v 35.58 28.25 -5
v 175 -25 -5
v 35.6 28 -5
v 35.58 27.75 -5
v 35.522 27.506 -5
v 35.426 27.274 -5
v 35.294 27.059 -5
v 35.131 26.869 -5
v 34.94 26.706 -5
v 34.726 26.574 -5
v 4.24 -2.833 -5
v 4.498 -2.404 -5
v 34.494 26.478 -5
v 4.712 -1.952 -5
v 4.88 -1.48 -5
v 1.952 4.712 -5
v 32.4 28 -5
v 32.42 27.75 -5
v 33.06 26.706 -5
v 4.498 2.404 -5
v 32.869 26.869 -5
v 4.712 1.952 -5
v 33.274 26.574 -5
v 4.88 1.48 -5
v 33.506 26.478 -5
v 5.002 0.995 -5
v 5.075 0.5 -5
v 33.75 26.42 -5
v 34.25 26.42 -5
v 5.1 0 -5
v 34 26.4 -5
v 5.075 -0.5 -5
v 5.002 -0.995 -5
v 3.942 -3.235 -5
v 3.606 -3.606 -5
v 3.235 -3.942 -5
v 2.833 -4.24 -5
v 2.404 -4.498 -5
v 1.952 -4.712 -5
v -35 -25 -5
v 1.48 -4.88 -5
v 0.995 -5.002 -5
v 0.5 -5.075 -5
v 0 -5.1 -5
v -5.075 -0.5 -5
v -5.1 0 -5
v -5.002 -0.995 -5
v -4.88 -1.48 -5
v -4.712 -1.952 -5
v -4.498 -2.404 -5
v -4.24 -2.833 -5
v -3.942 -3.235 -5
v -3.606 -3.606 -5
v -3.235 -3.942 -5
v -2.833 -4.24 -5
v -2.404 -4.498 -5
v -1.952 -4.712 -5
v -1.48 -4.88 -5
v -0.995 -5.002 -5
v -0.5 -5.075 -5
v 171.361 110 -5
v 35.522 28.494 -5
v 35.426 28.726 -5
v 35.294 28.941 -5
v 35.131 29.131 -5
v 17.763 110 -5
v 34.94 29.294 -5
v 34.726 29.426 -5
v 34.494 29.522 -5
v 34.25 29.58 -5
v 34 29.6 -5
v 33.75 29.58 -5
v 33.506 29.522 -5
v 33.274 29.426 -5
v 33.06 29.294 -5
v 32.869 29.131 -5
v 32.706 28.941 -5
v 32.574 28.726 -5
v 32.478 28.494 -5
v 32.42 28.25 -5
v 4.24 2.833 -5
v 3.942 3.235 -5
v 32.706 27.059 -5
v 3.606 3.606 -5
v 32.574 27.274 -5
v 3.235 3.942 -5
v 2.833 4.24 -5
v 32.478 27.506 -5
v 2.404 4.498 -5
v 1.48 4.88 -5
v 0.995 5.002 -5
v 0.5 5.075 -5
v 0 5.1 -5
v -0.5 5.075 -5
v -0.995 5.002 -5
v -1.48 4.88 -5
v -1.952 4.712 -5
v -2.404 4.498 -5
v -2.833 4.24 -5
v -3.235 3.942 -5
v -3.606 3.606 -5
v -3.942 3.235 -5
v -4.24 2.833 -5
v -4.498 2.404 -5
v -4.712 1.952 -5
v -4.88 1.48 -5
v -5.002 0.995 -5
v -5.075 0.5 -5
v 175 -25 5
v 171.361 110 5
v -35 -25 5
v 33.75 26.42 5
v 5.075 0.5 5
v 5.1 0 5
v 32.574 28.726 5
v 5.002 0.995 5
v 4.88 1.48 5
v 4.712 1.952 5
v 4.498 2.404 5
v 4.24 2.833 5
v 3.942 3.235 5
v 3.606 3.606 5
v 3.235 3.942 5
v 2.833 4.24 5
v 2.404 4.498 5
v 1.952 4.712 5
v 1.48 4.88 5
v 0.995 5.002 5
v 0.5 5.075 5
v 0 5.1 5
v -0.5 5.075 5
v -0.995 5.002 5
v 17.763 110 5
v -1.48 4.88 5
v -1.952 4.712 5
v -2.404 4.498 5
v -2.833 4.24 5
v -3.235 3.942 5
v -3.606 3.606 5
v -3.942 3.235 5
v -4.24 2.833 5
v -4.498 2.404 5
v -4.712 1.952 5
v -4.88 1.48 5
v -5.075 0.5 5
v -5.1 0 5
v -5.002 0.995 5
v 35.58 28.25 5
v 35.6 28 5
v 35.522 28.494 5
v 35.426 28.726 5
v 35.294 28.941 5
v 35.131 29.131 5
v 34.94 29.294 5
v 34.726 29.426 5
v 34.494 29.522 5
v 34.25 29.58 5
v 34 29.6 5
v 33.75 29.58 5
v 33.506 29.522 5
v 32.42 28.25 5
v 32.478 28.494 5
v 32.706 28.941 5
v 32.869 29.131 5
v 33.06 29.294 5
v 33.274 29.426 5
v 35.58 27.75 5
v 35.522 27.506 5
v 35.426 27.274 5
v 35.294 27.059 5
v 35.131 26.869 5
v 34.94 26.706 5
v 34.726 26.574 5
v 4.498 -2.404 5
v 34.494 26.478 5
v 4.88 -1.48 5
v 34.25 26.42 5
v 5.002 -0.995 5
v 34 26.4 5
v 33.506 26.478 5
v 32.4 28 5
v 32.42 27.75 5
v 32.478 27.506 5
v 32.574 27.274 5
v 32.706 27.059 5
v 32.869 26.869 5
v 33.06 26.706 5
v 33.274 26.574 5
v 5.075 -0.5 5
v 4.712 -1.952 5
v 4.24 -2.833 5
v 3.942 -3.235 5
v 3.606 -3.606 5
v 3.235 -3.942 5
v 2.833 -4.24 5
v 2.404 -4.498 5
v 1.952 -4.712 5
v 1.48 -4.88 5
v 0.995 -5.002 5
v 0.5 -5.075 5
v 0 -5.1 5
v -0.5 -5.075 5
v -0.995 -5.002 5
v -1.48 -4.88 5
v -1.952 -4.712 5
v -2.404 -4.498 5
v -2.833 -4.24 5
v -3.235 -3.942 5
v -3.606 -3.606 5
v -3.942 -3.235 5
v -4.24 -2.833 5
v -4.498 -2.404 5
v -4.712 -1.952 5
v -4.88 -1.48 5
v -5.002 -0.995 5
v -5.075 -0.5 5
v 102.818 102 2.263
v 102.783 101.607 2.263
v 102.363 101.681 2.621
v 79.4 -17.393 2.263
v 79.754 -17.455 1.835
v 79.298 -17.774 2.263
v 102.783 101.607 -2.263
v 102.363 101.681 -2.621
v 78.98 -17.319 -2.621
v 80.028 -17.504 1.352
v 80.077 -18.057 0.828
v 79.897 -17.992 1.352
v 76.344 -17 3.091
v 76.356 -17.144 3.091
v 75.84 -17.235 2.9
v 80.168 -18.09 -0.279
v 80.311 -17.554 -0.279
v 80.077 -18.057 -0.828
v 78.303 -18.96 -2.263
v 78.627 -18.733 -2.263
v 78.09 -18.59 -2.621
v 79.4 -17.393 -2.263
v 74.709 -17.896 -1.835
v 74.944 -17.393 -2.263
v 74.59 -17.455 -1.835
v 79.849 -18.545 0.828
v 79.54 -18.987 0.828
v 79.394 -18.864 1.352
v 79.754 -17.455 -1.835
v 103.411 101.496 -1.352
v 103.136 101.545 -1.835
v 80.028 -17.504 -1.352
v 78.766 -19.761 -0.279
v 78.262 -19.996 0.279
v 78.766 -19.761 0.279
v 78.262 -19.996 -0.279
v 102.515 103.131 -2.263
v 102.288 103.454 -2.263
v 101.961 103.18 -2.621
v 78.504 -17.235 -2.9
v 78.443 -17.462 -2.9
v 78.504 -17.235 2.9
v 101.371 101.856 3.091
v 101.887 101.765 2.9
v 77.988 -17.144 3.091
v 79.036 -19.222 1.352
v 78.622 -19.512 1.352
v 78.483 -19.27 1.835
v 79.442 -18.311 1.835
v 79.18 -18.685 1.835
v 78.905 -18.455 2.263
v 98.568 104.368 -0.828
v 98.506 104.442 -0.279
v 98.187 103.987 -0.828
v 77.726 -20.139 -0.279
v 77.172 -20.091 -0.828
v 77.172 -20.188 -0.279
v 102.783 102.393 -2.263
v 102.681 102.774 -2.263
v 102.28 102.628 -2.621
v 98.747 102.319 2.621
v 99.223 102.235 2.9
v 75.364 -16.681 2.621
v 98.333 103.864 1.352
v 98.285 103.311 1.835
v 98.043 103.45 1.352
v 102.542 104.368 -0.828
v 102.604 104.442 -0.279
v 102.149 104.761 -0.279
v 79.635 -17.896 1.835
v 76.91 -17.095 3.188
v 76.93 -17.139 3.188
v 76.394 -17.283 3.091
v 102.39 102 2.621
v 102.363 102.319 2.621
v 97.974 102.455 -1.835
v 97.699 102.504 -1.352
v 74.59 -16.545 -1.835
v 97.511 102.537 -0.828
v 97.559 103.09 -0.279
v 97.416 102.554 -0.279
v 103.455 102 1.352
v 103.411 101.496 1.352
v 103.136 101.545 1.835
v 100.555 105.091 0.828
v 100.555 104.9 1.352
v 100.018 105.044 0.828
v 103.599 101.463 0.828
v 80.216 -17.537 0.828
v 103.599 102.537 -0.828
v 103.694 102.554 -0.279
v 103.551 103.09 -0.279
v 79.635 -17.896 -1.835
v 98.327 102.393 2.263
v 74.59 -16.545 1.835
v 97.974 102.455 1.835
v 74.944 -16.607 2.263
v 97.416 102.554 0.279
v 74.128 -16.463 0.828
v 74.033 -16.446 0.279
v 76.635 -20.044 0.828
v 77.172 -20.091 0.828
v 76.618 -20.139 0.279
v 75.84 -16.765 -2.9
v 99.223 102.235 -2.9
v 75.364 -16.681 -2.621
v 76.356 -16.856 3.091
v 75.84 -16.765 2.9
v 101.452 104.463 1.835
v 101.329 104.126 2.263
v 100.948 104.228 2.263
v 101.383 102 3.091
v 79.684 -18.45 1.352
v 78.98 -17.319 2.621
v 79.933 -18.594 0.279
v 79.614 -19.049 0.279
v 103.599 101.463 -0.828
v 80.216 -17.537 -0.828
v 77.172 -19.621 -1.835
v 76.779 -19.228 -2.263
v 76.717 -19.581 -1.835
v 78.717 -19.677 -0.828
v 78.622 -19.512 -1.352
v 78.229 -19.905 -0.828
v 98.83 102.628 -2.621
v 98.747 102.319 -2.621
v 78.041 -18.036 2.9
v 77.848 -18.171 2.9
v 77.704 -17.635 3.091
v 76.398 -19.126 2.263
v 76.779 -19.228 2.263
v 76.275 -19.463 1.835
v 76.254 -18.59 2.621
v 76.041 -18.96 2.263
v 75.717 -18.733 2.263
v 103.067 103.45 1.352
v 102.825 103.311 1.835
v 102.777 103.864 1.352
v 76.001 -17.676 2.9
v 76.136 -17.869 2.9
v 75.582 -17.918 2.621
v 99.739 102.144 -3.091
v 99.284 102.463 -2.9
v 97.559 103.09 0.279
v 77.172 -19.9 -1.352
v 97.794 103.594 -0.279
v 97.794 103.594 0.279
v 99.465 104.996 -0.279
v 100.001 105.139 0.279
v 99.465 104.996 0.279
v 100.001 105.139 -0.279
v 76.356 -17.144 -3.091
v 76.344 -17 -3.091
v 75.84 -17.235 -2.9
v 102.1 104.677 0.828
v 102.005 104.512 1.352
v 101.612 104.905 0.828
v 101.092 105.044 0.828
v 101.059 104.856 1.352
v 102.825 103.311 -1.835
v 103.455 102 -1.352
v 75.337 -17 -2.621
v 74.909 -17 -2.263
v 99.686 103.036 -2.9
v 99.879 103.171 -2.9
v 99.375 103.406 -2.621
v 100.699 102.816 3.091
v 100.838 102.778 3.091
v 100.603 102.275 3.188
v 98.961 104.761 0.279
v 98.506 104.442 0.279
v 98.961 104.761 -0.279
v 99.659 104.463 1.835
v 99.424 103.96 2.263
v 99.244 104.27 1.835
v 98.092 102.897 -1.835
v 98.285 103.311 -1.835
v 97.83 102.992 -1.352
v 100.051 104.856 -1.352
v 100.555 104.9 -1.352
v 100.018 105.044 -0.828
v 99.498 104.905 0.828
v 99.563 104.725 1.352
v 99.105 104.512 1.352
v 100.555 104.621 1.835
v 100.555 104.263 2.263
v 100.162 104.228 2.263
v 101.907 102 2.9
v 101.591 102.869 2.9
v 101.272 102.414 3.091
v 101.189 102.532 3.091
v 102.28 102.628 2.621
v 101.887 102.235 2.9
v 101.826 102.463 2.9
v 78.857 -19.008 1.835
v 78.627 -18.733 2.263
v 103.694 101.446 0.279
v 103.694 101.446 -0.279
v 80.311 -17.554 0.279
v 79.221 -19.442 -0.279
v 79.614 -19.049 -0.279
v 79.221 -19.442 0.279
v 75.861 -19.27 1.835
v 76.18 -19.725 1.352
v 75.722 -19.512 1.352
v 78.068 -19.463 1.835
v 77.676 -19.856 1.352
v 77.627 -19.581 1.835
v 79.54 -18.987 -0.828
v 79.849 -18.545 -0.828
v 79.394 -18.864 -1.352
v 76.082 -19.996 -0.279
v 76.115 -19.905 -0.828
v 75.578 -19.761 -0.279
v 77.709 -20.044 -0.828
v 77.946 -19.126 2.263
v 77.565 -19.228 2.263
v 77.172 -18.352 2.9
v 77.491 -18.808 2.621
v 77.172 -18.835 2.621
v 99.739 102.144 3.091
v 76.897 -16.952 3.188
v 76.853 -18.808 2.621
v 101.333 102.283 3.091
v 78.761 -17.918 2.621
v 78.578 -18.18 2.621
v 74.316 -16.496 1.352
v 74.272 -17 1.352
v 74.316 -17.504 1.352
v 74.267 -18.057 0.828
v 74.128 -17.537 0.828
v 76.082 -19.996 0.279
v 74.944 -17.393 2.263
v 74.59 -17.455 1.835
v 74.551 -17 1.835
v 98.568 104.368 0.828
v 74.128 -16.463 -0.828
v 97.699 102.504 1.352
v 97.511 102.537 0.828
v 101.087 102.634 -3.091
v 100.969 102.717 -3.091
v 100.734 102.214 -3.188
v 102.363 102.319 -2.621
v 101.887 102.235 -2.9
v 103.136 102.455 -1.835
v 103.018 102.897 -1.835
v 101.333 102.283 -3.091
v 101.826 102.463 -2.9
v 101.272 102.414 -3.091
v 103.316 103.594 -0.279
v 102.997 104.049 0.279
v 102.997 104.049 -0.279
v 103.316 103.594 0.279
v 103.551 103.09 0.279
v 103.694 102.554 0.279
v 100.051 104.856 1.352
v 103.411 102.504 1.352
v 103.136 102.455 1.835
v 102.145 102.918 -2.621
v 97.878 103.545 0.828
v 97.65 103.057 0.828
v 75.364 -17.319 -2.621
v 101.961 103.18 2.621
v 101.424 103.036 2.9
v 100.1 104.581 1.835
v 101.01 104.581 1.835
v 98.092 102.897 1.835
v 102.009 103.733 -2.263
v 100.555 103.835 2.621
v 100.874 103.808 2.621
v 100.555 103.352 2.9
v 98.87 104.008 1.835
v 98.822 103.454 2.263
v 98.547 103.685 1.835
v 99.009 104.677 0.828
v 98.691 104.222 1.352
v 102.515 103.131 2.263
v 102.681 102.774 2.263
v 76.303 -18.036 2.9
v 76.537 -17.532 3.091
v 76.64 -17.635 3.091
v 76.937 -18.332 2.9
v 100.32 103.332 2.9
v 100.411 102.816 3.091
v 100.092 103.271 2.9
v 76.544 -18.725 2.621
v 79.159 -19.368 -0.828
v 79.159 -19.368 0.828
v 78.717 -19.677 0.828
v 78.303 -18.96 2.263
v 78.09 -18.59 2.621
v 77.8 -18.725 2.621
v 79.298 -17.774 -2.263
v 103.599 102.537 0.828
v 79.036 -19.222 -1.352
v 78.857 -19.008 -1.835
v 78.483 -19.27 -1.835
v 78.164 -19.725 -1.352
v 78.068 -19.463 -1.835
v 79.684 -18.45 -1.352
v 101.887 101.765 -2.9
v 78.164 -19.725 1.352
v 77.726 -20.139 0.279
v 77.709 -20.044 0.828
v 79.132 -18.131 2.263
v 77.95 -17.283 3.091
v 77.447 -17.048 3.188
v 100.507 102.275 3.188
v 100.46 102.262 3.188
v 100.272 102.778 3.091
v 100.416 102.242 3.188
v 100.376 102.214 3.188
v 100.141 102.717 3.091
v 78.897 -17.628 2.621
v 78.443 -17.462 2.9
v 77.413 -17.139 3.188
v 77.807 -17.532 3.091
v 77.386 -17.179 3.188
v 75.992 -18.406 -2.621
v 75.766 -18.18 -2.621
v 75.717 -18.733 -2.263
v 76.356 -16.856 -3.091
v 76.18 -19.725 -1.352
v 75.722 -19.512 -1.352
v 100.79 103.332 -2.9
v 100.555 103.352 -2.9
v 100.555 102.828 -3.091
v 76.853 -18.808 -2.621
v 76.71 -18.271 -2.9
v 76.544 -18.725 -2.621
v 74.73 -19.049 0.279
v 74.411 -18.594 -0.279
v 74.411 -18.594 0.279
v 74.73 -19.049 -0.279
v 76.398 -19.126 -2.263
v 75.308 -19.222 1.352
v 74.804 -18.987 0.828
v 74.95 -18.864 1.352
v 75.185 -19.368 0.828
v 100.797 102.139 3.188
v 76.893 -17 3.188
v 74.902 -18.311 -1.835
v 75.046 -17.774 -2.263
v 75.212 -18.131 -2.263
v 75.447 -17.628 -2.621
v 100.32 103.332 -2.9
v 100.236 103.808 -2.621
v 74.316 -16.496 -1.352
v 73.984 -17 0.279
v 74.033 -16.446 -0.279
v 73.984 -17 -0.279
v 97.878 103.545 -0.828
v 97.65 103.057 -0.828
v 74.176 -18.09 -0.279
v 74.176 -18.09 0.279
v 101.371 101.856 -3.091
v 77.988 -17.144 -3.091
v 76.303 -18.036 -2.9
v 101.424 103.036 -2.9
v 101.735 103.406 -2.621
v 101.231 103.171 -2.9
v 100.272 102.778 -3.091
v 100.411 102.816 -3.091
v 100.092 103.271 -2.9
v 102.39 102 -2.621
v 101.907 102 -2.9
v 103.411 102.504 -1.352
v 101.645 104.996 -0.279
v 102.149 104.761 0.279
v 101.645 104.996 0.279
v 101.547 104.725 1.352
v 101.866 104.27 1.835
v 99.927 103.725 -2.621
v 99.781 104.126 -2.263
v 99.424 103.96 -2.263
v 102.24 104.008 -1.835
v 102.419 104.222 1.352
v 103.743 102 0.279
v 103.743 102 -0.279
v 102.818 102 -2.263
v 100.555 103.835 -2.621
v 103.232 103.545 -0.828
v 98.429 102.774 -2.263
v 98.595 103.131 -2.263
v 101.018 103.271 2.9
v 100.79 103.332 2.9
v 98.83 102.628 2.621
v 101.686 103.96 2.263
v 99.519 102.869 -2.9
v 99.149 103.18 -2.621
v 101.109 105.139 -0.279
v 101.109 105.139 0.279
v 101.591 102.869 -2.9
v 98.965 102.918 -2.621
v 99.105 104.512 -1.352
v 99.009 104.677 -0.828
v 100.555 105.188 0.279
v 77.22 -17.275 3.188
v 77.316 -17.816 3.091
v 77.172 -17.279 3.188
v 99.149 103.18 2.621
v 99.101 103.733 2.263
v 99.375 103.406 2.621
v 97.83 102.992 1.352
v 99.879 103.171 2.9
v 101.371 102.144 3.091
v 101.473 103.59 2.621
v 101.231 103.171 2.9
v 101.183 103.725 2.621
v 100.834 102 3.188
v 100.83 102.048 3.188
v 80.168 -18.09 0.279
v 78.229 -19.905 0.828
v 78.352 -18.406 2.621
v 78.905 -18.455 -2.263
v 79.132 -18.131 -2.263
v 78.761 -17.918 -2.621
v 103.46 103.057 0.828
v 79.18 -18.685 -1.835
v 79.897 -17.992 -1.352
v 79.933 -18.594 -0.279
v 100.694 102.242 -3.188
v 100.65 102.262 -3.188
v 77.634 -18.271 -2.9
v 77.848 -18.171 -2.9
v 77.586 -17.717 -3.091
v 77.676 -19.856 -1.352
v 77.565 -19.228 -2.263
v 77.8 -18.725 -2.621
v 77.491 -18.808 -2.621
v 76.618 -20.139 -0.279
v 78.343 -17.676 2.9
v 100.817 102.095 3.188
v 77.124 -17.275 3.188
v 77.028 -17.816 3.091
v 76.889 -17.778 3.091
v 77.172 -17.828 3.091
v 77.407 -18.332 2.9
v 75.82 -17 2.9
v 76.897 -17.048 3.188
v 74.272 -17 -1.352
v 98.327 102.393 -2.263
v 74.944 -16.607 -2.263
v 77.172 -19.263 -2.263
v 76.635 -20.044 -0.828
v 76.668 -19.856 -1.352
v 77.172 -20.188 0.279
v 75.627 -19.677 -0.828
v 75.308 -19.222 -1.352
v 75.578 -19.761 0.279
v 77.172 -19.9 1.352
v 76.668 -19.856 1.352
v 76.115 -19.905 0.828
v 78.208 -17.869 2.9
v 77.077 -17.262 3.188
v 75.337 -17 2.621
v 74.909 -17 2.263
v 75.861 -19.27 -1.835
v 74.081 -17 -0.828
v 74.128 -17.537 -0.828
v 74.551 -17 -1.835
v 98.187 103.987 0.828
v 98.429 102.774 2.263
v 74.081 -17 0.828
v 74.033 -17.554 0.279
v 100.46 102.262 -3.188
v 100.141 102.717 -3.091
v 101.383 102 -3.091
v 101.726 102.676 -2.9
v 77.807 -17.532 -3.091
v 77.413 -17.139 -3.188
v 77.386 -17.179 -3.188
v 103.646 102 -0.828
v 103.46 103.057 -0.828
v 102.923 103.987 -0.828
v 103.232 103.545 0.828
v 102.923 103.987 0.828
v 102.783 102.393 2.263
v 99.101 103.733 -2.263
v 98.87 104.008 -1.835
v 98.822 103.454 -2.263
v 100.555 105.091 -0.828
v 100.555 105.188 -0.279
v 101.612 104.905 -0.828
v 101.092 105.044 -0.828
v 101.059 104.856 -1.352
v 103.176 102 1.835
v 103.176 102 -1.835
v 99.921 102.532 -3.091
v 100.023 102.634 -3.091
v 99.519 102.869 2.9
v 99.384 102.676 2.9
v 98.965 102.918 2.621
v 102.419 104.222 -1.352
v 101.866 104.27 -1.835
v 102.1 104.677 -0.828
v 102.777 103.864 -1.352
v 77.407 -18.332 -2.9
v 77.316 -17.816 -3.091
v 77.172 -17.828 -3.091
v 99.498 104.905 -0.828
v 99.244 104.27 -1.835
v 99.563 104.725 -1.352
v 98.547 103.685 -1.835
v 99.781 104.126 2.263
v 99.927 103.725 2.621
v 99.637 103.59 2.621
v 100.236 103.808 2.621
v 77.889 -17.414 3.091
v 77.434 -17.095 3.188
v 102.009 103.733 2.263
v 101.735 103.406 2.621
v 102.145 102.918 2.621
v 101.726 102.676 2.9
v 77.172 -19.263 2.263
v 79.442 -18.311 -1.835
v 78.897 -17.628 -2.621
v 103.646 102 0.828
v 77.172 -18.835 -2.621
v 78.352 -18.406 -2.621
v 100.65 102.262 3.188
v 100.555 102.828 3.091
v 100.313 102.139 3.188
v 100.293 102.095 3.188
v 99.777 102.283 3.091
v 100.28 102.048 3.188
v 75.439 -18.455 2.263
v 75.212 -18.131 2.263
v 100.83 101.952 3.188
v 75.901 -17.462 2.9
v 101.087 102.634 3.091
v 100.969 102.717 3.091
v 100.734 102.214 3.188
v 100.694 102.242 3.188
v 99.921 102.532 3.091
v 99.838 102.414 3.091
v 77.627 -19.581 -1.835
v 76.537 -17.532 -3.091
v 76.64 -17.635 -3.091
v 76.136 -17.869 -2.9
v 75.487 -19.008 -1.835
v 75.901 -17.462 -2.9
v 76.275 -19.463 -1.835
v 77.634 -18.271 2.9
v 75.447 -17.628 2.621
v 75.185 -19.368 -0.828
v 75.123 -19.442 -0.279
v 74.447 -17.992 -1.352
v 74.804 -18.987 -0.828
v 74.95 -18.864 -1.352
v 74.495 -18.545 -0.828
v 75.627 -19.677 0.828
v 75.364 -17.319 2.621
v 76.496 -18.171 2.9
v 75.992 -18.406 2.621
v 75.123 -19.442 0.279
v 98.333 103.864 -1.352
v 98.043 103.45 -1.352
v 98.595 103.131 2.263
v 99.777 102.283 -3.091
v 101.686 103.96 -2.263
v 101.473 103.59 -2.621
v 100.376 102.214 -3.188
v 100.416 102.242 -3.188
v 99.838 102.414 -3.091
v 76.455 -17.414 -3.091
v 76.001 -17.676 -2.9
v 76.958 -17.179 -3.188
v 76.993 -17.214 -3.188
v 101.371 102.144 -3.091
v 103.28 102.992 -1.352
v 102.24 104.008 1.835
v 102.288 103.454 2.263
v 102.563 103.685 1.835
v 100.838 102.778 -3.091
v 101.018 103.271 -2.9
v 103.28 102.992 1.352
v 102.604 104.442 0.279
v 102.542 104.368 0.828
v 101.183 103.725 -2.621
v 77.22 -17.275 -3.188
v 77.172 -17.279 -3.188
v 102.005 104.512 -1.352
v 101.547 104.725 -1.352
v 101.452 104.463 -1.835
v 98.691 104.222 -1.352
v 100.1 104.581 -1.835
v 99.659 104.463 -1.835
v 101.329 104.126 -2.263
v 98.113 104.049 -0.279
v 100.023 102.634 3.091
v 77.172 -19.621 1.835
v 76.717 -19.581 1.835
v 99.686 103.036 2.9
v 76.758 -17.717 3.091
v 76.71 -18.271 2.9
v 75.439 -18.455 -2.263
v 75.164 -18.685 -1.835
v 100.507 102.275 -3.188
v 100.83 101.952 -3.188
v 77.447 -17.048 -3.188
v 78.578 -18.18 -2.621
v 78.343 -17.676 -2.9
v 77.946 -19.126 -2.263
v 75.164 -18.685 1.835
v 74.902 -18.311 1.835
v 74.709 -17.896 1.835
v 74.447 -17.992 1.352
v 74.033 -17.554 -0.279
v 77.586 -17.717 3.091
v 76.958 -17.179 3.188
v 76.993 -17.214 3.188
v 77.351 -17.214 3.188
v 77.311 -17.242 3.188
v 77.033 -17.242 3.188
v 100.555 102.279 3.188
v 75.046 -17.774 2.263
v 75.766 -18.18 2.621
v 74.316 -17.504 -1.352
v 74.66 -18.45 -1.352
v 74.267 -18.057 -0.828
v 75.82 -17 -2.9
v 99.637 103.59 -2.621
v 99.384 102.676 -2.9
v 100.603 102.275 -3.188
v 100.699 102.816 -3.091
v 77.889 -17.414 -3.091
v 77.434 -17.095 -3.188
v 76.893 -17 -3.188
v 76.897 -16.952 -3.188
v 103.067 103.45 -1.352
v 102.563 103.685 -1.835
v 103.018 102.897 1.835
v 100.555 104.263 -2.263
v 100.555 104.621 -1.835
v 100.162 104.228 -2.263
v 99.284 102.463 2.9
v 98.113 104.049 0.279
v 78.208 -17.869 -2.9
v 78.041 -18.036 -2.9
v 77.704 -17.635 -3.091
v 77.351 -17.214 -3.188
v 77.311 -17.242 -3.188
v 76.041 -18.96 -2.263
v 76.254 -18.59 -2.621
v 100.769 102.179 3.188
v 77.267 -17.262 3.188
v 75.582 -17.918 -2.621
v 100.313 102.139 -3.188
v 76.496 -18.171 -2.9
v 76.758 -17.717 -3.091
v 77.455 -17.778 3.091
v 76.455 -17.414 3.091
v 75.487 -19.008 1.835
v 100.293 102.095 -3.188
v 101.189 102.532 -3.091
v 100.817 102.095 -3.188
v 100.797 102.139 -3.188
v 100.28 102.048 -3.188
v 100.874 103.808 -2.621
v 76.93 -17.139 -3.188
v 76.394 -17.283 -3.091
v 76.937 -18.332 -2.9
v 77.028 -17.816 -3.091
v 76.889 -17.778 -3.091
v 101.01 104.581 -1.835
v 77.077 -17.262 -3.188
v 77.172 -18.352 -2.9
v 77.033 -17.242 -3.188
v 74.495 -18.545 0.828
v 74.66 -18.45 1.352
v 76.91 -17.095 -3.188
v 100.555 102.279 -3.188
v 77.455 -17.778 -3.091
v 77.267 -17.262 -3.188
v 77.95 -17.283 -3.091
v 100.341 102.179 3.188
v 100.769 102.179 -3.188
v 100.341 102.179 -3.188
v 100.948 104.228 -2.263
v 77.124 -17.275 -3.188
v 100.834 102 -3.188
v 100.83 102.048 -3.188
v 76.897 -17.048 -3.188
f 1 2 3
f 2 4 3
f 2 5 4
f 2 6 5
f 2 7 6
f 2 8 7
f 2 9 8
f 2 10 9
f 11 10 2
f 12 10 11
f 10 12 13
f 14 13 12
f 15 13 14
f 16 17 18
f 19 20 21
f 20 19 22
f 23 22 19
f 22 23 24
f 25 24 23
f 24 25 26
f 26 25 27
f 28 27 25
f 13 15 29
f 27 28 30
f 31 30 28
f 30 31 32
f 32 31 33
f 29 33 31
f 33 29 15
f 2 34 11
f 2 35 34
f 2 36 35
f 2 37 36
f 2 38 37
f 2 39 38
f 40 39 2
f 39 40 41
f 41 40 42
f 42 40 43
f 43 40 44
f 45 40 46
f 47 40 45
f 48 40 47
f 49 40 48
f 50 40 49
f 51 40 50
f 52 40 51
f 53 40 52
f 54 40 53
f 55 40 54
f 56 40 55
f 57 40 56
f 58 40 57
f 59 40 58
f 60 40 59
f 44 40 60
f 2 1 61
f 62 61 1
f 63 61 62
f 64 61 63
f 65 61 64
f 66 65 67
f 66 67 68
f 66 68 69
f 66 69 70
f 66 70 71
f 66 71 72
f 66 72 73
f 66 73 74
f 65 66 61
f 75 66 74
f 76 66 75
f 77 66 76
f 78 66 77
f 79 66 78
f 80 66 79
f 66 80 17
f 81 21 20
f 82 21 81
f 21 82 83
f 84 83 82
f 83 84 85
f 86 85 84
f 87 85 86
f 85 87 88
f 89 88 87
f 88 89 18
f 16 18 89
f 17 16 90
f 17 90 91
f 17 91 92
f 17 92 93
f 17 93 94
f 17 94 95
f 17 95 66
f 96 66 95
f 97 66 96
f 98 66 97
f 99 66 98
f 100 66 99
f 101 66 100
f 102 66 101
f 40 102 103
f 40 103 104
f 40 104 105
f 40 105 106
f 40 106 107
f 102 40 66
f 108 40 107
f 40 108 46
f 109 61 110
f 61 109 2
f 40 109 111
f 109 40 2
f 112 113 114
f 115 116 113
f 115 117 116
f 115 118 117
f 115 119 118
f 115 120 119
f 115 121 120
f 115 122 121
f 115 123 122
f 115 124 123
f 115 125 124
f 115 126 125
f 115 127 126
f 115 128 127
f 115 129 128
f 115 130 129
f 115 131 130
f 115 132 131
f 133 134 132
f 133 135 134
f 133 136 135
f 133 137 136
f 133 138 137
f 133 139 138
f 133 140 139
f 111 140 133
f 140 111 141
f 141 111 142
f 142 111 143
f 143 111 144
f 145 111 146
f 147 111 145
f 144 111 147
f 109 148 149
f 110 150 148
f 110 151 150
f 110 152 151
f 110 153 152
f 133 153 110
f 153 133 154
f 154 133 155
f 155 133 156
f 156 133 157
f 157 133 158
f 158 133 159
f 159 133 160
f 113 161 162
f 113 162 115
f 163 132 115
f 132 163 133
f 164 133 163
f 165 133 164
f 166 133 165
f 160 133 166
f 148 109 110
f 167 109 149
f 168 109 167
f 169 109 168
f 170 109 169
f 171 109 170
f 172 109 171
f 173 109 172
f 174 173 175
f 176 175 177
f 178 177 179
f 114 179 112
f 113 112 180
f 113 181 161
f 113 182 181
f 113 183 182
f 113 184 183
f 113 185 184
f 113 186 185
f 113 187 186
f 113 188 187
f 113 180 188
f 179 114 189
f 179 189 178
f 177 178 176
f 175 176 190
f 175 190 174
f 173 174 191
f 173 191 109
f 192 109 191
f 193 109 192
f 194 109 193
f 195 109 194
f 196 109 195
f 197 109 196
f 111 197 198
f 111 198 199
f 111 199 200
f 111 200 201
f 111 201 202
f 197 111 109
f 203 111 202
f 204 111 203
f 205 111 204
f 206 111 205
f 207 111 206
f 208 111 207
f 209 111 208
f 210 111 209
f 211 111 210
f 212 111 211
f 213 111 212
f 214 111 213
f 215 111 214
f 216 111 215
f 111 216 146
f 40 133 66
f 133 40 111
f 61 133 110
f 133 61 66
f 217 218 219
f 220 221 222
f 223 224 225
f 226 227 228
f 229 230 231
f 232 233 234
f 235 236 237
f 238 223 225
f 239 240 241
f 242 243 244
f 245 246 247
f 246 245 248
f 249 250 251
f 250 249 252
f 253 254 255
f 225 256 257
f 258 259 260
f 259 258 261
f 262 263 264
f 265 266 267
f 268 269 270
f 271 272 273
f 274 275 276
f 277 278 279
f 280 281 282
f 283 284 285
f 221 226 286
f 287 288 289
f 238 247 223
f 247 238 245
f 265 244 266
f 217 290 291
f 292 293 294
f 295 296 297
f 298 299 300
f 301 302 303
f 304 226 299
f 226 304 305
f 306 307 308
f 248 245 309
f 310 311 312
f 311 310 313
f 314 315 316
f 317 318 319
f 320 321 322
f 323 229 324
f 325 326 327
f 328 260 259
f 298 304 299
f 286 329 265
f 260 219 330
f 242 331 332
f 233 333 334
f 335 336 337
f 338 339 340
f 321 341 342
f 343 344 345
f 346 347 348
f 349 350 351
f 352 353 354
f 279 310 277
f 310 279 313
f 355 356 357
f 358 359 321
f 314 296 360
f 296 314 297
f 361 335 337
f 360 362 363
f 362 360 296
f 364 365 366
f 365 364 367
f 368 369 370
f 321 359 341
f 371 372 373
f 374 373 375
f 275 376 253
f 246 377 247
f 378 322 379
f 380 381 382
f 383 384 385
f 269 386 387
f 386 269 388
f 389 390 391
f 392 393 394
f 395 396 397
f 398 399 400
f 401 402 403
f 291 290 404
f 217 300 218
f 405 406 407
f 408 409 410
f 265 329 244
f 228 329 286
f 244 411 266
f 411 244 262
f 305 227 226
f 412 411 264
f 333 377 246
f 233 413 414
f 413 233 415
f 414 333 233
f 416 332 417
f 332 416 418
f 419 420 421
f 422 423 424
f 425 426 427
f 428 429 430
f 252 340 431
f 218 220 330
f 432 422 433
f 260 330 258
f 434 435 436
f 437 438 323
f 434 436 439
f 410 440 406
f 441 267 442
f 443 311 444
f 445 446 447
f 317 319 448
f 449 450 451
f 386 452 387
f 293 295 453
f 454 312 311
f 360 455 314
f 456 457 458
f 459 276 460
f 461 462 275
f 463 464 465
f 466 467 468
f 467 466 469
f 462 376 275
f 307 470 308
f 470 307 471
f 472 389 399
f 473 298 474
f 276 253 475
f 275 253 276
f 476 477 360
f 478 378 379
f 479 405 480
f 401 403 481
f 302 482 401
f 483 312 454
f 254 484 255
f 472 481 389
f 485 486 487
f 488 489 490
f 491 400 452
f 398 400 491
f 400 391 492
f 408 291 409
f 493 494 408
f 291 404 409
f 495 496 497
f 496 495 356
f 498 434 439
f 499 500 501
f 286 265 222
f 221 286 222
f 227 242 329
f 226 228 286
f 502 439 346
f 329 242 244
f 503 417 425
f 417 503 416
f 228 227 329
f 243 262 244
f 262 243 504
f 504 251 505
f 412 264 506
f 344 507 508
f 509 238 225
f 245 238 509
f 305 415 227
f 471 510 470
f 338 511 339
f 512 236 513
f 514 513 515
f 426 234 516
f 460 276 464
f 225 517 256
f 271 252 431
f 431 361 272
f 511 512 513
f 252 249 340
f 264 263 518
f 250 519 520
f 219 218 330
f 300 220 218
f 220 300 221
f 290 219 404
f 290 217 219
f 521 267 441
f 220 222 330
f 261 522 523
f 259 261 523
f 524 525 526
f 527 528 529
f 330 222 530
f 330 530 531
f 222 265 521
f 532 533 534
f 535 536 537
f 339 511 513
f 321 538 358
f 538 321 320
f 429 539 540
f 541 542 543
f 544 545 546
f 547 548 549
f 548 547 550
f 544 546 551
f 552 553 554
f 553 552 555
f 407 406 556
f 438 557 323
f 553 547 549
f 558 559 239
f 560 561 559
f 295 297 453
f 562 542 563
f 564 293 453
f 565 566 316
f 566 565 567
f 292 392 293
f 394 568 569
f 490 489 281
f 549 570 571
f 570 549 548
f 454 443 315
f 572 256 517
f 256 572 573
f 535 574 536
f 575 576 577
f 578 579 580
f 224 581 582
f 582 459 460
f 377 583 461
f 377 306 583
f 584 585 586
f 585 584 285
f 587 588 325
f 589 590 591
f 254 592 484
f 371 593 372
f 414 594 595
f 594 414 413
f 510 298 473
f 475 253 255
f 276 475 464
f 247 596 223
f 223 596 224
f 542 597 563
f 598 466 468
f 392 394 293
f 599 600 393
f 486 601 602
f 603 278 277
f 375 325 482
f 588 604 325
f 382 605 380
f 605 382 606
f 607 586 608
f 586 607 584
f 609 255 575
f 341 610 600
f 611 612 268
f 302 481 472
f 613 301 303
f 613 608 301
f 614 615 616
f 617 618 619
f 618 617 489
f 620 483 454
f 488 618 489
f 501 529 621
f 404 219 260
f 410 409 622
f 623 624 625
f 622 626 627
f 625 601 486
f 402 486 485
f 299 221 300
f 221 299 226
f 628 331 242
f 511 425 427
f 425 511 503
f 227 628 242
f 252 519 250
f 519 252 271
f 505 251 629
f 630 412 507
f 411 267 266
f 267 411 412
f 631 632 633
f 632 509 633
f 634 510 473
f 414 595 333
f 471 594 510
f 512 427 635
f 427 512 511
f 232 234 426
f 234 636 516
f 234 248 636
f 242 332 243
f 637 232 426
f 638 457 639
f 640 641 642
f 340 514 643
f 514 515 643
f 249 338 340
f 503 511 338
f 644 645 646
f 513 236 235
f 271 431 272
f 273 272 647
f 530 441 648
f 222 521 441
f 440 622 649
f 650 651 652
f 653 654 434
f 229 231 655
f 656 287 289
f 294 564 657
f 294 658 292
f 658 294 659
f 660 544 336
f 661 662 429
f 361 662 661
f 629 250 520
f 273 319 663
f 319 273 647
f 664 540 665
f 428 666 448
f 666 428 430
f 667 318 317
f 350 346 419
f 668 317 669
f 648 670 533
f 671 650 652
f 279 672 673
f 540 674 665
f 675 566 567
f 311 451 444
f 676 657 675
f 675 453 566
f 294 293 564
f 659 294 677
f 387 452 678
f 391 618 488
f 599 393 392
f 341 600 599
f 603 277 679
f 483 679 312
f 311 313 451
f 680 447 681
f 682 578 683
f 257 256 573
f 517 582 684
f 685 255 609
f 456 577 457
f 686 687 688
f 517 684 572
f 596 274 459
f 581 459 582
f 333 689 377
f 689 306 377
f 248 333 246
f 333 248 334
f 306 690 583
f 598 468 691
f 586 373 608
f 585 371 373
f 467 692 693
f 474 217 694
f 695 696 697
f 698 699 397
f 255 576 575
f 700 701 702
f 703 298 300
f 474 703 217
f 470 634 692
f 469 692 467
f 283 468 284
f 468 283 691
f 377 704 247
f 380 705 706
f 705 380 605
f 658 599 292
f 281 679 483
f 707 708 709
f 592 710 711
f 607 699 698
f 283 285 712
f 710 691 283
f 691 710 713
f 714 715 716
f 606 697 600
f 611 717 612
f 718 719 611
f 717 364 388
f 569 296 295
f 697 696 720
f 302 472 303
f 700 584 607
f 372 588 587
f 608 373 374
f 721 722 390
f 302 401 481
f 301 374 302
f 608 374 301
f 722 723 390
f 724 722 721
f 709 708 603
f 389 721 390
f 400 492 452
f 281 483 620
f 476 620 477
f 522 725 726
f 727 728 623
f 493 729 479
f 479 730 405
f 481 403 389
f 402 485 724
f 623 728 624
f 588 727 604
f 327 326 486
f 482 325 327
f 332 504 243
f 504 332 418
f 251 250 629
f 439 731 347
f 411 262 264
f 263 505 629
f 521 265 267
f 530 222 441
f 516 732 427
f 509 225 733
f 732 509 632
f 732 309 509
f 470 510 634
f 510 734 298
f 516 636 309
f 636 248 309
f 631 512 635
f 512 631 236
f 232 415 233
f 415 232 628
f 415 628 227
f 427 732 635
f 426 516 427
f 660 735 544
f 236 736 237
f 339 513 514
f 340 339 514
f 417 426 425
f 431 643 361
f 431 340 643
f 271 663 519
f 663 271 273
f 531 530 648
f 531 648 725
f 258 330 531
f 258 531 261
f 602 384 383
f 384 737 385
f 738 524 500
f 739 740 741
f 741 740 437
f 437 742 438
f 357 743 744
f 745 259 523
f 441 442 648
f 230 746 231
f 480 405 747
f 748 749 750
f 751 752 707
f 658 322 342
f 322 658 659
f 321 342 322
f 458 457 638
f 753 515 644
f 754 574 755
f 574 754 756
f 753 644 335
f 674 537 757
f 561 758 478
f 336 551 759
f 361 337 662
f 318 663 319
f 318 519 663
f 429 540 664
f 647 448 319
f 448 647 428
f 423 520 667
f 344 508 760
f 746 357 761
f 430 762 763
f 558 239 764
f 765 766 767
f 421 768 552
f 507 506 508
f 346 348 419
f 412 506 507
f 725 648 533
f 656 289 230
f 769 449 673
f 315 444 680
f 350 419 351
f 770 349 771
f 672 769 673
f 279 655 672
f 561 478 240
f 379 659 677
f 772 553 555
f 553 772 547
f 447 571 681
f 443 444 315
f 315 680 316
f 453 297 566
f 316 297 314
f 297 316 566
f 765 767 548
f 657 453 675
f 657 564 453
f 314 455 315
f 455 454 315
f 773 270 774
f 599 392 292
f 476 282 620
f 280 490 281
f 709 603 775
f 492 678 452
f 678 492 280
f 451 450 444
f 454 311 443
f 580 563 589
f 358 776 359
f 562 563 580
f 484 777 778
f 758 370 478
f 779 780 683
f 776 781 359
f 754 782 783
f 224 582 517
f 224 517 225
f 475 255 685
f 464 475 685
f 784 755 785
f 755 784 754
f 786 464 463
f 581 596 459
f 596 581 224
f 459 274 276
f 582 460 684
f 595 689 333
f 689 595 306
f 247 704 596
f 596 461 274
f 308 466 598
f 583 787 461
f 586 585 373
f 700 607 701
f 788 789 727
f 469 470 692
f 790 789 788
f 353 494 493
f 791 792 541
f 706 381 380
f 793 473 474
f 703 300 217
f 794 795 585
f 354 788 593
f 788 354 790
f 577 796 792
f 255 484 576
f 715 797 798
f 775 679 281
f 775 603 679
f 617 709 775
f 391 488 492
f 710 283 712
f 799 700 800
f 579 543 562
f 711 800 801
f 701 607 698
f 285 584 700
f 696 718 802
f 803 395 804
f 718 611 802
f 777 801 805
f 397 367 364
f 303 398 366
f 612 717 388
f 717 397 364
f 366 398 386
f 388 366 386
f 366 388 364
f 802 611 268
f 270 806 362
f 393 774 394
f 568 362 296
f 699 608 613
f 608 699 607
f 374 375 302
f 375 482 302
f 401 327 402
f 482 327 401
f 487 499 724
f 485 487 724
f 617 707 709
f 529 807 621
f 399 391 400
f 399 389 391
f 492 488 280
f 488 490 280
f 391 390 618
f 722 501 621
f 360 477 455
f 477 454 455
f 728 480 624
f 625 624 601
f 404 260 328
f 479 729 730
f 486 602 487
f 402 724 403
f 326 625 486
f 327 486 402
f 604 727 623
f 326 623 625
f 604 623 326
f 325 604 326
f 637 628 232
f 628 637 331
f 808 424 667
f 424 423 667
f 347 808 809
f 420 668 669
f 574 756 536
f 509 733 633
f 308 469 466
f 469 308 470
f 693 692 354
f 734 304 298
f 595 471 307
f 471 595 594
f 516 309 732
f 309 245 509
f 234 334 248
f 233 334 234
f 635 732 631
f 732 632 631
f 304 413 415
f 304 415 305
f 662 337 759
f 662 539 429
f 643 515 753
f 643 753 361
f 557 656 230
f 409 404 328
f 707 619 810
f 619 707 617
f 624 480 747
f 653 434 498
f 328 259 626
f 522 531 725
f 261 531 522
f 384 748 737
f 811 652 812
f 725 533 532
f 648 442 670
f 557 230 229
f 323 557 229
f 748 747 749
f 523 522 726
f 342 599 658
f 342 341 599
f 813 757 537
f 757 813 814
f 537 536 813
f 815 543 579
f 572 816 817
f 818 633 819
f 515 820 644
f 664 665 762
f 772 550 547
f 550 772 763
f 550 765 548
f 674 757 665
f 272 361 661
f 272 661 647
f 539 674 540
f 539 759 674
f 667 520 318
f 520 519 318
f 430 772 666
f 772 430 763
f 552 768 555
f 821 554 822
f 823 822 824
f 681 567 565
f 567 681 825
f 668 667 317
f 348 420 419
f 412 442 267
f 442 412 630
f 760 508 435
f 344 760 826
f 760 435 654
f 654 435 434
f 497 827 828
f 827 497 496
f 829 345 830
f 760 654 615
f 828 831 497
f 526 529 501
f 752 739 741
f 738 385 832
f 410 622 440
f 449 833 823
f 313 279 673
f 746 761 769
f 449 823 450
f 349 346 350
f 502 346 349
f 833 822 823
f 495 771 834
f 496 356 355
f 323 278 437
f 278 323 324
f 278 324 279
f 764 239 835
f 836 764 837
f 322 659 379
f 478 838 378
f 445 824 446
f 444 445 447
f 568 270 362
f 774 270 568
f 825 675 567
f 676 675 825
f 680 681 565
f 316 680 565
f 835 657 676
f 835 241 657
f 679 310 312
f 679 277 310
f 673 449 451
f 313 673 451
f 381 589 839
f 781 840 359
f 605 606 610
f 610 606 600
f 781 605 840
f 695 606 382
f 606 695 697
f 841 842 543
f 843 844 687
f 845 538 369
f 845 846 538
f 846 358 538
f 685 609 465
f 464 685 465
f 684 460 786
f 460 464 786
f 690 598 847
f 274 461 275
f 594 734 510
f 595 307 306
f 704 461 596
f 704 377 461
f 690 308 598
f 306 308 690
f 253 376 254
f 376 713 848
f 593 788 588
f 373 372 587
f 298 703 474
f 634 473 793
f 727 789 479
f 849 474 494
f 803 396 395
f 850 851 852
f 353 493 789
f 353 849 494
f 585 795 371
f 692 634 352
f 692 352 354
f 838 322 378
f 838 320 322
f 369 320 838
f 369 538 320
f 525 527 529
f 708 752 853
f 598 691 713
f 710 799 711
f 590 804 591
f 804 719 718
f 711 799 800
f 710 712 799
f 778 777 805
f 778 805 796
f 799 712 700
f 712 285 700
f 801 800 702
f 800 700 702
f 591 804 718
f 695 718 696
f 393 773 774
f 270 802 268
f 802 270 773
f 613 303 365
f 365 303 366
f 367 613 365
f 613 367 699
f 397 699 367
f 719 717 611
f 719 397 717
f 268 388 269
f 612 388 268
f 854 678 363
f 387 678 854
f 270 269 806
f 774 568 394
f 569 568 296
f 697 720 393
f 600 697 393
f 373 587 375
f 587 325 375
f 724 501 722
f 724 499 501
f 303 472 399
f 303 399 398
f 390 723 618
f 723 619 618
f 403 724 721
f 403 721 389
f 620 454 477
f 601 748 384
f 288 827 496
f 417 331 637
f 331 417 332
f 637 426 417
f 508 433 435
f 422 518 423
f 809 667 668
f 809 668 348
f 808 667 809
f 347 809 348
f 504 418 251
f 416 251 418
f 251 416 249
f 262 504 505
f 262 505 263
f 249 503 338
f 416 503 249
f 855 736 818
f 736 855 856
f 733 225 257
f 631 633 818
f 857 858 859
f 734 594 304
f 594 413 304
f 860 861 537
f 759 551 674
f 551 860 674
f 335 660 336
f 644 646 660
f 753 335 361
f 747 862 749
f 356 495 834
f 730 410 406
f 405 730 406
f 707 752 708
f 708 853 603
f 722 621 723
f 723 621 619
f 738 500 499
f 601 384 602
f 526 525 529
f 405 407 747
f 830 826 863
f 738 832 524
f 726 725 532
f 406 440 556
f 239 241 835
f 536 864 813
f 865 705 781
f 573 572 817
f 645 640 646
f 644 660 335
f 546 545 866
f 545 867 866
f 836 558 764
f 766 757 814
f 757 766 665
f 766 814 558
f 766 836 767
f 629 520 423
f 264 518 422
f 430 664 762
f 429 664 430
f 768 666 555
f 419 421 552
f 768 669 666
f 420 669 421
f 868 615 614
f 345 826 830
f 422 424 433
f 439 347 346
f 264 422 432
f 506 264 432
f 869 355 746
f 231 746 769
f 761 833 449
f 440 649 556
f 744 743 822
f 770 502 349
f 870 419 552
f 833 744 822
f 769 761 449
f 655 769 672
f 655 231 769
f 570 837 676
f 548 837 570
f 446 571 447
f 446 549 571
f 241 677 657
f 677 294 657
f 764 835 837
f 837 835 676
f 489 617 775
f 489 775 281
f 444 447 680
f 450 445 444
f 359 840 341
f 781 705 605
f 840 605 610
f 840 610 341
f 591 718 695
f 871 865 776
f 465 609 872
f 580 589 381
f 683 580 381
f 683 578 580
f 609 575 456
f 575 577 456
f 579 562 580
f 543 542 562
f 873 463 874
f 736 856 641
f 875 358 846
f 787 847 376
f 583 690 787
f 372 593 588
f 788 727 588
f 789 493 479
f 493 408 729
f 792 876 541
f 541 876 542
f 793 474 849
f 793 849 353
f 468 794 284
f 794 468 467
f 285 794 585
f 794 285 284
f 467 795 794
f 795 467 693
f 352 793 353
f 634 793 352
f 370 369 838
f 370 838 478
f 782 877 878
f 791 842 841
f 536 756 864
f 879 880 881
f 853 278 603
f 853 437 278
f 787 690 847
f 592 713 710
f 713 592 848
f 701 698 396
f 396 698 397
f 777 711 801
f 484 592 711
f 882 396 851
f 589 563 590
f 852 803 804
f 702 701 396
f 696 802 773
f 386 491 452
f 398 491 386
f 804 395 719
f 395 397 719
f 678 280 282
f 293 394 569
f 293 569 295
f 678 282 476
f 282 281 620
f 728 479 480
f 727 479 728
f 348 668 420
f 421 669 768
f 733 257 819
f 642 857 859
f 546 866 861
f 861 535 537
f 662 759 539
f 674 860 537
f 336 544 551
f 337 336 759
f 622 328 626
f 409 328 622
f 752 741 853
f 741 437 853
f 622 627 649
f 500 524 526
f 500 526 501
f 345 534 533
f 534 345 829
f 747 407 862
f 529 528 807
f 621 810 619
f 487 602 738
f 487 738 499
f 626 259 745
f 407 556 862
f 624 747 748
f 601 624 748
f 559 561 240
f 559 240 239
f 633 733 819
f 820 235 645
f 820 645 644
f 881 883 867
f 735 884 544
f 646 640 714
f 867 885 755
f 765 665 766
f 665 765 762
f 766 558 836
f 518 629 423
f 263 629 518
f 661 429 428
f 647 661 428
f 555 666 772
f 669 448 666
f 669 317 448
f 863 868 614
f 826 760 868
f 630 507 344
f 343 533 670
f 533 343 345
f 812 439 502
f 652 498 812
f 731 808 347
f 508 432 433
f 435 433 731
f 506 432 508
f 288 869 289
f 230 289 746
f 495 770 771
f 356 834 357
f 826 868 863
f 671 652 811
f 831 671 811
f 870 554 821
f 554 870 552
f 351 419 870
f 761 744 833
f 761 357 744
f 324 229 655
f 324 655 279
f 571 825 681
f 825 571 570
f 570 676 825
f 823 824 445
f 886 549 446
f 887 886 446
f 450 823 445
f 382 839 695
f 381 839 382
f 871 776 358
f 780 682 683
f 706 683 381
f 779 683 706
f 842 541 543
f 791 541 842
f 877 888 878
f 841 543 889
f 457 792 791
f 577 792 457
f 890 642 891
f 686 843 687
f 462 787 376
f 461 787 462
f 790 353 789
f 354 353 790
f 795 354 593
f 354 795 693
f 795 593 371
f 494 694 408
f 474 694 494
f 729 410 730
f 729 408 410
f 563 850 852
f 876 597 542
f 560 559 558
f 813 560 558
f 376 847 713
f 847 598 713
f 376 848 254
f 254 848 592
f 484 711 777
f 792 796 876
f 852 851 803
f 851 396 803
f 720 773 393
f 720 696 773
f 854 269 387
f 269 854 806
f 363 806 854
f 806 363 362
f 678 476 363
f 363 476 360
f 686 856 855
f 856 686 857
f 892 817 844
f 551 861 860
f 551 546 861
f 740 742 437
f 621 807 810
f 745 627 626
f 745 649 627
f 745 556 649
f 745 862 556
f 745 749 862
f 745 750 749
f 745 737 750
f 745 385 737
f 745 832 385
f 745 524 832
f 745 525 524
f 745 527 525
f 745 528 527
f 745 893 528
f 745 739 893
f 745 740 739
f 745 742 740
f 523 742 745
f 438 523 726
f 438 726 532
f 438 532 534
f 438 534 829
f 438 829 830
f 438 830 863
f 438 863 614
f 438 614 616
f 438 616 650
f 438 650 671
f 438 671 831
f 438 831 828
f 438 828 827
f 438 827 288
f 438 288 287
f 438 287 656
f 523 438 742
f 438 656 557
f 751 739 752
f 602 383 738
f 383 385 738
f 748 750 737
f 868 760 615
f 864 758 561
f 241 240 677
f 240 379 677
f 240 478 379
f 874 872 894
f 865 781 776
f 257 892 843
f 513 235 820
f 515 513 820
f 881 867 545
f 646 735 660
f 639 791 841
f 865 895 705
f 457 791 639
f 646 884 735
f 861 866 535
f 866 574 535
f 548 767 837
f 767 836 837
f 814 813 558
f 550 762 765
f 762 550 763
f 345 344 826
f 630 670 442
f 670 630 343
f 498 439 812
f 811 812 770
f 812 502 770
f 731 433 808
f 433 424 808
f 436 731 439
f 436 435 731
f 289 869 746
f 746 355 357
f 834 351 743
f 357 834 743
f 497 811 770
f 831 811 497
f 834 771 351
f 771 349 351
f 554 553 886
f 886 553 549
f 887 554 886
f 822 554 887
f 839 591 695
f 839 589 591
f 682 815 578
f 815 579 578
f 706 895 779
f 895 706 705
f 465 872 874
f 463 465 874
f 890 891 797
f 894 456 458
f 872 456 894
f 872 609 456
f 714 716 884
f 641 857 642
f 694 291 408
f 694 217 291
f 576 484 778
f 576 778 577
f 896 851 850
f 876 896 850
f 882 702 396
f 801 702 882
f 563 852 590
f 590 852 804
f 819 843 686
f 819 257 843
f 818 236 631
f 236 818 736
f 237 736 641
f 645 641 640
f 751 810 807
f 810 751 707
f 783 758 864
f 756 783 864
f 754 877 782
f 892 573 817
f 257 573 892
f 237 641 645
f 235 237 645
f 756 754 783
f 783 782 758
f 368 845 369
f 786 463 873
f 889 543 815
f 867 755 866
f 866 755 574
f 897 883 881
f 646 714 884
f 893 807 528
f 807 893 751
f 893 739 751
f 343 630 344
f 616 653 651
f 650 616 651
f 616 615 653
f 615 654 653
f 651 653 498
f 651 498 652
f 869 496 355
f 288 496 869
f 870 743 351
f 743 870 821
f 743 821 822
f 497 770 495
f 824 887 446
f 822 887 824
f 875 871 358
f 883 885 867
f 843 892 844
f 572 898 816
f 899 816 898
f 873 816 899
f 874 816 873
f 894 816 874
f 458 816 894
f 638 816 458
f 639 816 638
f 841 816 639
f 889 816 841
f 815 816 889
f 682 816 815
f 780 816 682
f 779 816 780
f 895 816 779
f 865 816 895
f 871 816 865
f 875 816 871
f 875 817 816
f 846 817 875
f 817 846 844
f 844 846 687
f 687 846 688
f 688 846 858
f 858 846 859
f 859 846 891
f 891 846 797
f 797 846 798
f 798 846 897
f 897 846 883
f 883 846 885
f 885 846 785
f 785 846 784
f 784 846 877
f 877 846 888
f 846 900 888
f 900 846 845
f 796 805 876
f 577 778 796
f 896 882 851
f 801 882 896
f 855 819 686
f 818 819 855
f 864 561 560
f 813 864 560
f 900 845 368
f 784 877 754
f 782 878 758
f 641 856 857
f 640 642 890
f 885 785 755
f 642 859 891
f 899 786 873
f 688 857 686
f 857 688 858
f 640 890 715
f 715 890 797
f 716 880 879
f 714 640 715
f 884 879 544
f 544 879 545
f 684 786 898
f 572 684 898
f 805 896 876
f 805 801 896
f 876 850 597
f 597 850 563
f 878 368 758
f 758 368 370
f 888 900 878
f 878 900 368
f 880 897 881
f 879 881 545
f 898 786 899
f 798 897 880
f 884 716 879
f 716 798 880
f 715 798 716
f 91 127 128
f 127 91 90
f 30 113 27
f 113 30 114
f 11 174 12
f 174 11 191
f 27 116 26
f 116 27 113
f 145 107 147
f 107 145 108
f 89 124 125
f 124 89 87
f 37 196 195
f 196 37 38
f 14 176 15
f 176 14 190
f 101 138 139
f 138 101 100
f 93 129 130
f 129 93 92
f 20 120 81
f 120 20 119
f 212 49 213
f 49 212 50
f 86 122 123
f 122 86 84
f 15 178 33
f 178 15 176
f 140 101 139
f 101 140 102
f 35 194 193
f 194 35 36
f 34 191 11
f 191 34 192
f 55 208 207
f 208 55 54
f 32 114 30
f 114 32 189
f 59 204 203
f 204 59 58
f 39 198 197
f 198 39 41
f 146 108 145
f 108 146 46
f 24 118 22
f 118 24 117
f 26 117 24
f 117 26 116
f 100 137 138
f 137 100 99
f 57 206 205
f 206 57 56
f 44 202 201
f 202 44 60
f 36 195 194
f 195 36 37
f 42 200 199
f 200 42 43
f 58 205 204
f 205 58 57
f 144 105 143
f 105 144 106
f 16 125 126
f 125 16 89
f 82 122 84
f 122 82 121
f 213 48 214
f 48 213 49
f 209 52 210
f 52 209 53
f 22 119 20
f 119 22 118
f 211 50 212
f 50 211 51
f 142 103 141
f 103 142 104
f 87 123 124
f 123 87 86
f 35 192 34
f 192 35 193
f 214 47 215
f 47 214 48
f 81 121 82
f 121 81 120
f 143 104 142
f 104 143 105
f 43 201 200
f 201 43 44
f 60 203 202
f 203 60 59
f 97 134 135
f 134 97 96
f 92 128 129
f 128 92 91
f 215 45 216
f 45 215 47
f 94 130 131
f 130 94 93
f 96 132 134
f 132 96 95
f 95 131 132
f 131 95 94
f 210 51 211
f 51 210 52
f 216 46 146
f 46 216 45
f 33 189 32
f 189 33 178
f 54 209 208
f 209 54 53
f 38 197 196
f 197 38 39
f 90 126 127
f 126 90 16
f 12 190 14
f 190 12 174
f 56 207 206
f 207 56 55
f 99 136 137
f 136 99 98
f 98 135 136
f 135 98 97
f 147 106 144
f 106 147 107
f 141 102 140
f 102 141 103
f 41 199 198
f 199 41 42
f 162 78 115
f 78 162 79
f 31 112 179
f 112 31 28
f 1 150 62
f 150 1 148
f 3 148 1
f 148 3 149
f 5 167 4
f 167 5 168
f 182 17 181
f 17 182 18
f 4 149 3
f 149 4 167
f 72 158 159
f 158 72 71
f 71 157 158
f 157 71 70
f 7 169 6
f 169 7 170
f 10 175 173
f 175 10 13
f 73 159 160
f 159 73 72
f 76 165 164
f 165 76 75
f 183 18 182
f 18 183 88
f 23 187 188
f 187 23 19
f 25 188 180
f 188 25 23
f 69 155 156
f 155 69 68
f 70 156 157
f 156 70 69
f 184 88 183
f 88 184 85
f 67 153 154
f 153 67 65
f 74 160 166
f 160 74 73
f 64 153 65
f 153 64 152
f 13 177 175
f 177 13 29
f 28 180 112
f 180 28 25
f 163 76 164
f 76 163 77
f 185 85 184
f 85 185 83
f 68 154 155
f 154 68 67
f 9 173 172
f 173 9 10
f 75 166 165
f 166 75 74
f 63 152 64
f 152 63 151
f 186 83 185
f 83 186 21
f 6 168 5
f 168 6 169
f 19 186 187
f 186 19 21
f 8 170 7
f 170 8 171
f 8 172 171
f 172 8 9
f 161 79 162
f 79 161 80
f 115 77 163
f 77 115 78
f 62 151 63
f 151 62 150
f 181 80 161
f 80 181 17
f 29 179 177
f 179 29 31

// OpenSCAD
$fn=64;
module raw(){linear_extrude(height=10,center=true) polygon(points=[[-35.00000,-25.00000],[175.00000,-25.00000],[171.36119,110.00000],[17.76280,110.00000]]);}
module spar(){hull(){translate([77.1720,-17.0000,0]) sphere(d=6.4,$fn=36); translate([100.5550,102.0000,0]) sphere(d=6.4,$fn=36);}}
module wing(){difference(){raw(); spar(); translate([0,0,-8]) cylinder(h=16,d=10.2,$fn=64); translate([34,28,-8]) cylinder(h=16,d=3.2,$fn=40);}}
wing();
